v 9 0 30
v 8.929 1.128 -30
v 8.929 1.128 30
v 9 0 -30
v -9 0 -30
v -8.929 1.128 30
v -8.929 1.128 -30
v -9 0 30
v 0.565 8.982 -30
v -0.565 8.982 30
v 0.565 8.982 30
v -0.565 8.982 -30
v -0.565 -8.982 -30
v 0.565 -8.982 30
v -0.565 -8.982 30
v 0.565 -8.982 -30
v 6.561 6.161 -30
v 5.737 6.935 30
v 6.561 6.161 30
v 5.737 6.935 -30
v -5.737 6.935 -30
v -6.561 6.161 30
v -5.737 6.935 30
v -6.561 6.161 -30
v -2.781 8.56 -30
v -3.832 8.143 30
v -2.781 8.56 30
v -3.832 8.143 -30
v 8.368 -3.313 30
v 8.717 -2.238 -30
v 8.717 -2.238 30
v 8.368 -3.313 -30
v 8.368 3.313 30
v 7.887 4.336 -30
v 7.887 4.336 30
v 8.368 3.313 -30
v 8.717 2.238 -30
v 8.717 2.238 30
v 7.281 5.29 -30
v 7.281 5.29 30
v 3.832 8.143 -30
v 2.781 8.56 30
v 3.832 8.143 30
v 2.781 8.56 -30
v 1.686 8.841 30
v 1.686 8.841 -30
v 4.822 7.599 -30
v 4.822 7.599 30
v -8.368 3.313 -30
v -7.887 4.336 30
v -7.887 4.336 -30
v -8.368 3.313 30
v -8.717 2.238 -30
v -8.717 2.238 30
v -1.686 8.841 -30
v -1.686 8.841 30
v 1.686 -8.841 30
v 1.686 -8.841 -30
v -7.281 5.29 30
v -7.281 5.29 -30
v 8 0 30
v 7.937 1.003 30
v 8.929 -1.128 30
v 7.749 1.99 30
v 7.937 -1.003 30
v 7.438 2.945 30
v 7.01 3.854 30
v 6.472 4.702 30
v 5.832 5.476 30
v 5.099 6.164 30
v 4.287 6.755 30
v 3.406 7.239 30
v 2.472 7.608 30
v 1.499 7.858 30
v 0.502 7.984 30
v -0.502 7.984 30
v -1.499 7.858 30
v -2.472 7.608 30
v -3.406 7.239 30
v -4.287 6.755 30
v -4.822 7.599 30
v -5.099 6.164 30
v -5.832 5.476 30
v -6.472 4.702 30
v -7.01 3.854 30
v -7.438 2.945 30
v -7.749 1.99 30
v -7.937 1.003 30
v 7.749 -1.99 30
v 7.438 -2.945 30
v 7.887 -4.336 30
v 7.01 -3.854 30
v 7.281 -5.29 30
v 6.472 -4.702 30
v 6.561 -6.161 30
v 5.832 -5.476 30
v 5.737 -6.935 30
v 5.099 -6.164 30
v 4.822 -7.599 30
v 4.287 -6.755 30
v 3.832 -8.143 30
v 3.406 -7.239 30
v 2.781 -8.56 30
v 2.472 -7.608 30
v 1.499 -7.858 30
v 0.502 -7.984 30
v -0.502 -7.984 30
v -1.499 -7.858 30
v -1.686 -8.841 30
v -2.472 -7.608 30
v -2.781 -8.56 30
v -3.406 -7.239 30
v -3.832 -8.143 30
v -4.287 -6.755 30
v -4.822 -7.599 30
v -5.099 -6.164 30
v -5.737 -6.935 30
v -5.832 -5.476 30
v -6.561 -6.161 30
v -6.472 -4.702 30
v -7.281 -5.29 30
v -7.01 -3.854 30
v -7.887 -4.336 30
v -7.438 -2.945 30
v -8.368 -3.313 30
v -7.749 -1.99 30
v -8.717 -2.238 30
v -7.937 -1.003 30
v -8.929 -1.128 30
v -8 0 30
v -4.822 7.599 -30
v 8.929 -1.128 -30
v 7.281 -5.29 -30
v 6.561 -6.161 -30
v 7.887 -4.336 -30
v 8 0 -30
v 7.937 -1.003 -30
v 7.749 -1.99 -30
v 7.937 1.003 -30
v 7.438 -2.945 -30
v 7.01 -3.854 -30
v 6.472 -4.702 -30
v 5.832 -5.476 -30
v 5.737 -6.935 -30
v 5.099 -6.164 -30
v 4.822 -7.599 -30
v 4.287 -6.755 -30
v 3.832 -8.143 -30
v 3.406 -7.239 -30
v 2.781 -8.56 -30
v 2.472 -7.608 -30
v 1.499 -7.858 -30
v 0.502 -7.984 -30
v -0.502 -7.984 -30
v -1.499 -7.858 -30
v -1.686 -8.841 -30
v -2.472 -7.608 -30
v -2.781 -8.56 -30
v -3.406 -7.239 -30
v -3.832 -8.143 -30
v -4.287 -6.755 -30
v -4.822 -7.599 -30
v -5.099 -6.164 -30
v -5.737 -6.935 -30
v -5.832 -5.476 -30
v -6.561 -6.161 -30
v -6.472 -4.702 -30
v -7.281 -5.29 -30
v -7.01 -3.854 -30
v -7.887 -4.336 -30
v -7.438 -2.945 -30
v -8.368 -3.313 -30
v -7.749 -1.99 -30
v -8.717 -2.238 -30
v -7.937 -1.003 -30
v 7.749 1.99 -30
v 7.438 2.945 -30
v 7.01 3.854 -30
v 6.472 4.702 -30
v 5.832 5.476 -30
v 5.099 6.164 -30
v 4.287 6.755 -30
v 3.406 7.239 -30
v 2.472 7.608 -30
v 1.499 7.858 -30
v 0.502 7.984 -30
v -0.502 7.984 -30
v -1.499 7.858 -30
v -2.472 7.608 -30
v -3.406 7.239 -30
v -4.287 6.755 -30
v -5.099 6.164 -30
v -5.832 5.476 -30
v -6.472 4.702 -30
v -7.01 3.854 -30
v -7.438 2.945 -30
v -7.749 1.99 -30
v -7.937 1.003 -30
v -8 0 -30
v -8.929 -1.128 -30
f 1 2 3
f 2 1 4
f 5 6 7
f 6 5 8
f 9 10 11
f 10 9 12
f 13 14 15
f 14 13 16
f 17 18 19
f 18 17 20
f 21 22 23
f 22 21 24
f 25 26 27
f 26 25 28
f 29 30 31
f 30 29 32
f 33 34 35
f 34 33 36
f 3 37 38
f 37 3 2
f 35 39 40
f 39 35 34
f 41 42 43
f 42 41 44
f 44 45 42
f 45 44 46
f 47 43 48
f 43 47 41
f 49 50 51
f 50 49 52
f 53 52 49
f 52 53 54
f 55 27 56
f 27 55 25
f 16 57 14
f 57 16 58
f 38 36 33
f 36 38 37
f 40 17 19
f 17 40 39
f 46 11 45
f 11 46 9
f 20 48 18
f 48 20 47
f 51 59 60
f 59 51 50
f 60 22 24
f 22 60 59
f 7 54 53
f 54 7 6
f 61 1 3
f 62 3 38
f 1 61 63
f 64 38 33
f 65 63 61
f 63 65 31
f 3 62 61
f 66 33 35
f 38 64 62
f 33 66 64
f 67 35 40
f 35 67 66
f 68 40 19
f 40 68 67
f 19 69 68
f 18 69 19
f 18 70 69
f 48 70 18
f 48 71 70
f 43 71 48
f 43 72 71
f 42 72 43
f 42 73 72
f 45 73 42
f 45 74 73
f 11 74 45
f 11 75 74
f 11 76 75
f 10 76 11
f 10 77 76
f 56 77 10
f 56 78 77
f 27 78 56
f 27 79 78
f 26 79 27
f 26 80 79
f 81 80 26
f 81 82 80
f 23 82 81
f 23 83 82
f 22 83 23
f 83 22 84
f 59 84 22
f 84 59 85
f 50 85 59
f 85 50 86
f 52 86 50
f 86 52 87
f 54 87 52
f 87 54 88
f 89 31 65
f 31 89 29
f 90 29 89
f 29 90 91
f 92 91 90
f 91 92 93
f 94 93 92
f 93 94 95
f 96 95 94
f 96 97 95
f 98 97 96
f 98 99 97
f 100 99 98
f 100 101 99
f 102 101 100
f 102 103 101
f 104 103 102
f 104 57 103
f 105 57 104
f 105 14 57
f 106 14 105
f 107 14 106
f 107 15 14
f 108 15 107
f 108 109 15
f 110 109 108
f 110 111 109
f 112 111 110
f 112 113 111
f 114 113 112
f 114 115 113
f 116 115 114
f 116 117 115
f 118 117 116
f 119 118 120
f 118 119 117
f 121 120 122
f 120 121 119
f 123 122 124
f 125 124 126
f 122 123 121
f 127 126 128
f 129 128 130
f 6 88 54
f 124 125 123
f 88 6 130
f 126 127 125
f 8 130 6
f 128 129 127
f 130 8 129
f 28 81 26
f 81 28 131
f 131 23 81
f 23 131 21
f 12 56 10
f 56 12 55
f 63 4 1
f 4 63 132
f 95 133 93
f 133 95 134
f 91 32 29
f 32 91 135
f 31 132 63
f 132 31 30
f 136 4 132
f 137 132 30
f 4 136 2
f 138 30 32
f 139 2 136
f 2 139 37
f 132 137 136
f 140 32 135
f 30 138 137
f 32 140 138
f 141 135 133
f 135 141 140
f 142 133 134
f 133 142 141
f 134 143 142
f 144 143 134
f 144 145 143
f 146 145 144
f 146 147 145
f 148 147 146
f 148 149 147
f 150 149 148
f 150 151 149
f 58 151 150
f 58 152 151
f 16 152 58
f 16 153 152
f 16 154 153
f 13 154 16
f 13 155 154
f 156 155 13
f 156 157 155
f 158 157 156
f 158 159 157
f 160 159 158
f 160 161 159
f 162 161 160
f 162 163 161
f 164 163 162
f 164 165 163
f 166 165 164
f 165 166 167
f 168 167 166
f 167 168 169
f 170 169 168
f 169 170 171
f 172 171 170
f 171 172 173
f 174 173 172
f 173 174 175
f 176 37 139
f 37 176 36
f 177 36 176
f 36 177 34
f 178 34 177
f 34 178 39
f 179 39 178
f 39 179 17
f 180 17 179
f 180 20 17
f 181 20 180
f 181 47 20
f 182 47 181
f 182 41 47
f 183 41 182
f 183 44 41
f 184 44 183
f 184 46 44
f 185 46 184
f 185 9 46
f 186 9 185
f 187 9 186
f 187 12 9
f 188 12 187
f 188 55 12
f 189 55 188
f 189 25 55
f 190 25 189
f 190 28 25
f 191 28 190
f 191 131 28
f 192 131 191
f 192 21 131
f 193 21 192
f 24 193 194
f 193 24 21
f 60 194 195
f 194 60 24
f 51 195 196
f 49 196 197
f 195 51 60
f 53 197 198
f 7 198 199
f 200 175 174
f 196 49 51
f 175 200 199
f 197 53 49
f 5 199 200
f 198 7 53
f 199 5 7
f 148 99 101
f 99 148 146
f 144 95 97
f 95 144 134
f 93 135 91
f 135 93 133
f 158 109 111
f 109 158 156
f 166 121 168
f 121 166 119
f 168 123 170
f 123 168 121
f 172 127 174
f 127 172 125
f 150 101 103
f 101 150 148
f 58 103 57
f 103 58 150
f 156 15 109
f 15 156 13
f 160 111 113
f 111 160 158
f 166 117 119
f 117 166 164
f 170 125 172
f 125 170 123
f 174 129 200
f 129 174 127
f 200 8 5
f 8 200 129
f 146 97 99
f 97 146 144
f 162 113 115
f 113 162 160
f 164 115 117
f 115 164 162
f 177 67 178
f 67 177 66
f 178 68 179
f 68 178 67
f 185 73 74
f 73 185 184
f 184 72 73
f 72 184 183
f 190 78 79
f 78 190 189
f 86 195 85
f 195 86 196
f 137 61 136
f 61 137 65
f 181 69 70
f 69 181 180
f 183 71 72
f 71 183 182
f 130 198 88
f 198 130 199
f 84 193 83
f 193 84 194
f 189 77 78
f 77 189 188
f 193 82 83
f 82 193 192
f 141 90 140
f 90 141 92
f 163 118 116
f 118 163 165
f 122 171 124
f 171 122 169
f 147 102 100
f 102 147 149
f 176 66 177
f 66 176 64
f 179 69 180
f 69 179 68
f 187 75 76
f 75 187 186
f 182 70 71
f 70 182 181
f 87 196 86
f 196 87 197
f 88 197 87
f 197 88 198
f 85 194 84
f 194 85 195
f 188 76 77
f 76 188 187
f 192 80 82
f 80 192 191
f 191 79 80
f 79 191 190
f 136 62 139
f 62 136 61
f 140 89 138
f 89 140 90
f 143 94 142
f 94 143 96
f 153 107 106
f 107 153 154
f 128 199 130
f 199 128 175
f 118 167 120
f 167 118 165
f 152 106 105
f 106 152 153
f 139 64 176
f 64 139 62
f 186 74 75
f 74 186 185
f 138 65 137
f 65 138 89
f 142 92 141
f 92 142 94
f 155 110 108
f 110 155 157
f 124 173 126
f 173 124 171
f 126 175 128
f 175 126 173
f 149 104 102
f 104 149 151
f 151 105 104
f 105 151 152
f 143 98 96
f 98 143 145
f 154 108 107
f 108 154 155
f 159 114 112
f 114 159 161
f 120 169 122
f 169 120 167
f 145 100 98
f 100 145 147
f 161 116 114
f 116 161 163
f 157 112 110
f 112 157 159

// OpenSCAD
$fn = 50;


difference() {
	union() {
		translate(v = [0, 0, -30.0000000000]) {
			cylinder(h = 60, r = 9.0000000000);
		}
	}
	union() {
		translate(v = [0, 0, -100.0000000000]) {
			cylinder(h = 200, r = 8);
		}
	}
}
